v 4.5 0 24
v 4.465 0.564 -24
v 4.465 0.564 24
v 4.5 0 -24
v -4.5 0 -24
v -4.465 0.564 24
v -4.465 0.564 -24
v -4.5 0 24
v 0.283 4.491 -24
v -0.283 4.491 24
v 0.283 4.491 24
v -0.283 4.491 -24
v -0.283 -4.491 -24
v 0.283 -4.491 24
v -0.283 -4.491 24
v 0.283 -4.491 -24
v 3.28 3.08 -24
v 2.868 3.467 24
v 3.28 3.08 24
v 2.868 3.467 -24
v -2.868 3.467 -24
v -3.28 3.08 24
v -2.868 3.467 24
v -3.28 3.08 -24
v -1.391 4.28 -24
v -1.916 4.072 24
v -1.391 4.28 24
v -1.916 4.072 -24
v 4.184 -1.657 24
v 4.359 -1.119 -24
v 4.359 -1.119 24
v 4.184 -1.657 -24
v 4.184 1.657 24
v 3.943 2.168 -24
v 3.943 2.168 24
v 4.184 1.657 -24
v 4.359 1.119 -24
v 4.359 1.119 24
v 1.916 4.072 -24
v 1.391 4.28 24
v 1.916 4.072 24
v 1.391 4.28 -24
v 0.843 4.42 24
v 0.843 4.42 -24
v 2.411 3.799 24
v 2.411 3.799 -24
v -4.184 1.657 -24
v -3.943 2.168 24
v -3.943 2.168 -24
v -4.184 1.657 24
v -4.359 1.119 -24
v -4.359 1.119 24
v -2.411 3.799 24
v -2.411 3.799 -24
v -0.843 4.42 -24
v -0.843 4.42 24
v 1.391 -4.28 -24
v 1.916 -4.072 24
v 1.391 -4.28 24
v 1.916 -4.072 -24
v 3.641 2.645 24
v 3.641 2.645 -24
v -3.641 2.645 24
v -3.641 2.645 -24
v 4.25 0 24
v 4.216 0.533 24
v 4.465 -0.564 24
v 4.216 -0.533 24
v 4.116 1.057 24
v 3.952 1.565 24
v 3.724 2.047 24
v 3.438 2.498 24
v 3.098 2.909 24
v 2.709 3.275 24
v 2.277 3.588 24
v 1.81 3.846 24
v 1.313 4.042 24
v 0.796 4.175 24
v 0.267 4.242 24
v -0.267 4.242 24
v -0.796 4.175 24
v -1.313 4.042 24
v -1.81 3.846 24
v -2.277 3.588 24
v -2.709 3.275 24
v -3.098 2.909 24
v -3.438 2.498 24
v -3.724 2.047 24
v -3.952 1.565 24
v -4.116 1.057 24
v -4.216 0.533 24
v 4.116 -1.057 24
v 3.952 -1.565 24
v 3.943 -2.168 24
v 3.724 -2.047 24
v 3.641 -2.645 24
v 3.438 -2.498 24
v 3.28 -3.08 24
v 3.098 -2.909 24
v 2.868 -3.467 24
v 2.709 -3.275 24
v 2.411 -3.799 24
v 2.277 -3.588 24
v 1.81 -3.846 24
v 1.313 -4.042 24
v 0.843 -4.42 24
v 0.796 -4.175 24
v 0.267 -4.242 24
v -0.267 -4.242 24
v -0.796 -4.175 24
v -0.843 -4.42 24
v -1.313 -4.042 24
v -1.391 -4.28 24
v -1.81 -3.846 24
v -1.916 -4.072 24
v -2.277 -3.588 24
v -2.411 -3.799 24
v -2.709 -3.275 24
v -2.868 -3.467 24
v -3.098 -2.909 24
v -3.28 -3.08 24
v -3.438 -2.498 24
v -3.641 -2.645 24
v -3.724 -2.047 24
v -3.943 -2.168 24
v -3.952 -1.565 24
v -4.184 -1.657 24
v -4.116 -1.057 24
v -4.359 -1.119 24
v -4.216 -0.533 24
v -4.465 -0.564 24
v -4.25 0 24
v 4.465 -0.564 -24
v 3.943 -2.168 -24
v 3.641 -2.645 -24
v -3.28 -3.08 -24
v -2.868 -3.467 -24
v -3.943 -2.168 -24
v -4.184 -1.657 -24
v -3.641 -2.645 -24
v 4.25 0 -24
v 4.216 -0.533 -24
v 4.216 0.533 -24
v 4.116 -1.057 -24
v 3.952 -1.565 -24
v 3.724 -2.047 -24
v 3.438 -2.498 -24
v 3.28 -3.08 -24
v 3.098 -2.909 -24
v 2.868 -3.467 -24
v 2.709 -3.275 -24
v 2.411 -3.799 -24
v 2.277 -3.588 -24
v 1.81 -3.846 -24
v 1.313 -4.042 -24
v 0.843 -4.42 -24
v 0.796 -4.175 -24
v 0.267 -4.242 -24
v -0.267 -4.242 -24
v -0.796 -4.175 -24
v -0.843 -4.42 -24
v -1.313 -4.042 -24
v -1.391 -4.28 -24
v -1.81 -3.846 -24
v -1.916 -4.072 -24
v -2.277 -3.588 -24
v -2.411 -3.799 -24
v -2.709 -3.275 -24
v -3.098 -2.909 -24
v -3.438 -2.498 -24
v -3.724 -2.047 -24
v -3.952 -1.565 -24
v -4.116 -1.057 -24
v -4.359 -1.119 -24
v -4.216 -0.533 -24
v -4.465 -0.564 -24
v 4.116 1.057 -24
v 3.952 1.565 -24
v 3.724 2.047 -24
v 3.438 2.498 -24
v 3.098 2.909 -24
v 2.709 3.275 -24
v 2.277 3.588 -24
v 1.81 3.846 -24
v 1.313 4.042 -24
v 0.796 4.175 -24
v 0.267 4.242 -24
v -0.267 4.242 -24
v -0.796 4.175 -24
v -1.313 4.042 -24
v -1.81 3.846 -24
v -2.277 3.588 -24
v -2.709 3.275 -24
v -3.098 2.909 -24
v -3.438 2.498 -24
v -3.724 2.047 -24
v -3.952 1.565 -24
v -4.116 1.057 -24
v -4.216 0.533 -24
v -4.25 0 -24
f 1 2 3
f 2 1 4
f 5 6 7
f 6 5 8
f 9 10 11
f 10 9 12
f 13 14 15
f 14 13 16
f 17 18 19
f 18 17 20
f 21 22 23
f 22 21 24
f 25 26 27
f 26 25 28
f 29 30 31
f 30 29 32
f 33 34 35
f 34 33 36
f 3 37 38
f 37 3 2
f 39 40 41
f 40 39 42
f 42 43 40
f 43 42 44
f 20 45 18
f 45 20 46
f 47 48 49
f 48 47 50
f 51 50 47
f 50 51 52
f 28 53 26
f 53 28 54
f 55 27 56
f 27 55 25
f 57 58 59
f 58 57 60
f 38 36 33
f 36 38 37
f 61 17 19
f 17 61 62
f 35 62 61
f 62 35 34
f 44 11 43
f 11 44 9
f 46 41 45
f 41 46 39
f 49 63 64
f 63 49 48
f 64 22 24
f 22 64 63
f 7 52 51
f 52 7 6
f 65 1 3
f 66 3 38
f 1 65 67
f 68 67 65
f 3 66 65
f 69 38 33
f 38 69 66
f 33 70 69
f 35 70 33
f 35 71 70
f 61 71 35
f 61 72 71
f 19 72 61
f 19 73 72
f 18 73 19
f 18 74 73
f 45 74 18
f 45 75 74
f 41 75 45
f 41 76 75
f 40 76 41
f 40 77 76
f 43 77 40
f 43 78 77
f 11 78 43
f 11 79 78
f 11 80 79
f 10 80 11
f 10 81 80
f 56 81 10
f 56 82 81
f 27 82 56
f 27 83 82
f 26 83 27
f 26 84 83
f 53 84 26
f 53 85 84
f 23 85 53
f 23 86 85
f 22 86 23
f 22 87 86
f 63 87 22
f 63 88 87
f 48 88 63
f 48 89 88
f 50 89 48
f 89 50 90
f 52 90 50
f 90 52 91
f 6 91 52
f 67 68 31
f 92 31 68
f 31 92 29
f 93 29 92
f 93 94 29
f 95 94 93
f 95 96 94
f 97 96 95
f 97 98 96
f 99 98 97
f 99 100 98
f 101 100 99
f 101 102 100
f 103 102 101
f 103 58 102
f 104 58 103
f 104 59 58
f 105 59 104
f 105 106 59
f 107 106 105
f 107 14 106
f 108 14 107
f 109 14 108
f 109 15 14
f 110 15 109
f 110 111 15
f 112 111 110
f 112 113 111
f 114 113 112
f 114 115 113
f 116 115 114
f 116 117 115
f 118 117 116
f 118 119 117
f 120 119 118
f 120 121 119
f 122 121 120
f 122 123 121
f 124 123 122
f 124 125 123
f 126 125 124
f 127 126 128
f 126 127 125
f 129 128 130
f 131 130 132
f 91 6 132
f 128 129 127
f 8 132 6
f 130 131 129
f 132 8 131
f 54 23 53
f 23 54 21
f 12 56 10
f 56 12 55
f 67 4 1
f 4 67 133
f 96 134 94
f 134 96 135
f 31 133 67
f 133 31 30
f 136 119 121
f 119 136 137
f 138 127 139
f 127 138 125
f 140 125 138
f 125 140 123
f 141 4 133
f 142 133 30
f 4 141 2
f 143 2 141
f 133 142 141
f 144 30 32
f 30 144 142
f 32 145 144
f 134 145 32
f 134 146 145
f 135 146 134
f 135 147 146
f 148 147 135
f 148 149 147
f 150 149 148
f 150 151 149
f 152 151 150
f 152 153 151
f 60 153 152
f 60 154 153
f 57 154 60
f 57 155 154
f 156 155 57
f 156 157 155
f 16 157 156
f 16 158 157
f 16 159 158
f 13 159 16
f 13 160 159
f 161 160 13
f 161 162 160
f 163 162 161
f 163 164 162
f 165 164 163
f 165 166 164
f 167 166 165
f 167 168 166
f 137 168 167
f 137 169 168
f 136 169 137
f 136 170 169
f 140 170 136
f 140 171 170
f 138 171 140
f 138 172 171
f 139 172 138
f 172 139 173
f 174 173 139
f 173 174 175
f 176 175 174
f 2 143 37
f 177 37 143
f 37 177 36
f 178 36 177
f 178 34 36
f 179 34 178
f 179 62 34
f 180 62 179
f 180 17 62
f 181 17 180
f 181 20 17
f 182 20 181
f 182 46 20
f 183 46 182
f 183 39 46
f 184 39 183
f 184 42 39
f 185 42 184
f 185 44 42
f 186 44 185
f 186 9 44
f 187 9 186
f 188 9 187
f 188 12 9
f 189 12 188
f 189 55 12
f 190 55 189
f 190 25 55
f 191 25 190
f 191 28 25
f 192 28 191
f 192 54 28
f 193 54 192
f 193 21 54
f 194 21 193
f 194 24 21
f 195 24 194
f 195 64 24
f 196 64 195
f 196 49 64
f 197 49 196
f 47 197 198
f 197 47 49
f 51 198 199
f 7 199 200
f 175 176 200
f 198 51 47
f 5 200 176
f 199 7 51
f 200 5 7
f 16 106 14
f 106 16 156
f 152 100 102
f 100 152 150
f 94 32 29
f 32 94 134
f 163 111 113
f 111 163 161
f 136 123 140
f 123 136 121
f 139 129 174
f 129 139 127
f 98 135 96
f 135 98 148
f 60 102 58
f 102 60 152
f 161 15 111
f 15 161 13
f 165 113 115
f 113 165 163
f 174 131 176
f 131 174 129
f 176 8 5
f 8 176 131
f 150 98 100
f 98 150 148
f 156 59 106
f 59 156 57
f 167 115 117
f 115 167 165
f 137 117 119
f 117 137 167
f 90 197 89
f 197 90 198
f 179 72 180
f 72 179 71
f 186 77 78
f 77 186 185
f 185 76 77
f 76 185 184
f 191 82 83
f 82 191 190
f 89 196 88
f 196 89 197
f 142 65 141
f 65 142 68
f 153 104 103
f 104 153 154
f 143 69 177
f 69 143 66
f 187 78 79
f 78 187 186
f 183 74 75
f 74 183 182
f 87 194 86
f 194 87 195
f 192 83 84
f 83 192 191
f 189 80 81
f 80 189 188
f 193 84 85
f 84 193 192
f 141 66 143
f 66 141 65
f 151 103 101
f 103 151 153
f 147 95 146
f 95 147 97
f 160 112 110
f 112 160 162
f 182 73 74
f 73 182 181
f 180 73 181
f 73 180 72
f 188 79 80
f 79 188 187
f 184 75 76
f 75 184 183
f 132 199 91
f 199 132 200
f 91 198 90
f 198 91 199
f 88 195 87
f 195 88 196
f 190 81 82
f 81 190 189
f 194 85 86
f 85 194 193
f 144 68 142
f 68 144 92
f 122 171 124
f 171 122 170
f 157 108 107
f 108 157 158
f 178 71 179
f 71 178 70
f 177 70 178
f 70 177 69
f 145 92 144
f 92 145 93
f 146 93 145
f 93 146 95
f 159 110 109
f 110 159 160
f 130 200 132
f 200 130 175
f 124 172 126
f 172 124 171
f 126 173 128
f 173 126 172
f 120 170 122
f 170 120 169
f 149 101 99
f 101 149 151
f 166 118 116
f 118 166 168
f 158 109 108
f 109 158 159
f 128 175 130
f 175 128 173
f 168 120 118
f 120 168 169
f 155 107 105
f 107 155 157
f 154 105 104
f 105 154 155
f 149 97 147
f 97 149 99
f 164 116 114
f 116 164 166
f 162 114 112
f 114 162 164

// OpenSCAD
$fn = 50;


difference() {
	union() {
		translate(v = [0, 0, -24.0000000000]) {
			cylinder(h = 48, r = 4.5000000000);
		}
	}
	union() {
		translate(v = [0, 0, -100.0000000000]) {
			cylinder(h = 200, r = 4.2500000000);
		}
	}
}
